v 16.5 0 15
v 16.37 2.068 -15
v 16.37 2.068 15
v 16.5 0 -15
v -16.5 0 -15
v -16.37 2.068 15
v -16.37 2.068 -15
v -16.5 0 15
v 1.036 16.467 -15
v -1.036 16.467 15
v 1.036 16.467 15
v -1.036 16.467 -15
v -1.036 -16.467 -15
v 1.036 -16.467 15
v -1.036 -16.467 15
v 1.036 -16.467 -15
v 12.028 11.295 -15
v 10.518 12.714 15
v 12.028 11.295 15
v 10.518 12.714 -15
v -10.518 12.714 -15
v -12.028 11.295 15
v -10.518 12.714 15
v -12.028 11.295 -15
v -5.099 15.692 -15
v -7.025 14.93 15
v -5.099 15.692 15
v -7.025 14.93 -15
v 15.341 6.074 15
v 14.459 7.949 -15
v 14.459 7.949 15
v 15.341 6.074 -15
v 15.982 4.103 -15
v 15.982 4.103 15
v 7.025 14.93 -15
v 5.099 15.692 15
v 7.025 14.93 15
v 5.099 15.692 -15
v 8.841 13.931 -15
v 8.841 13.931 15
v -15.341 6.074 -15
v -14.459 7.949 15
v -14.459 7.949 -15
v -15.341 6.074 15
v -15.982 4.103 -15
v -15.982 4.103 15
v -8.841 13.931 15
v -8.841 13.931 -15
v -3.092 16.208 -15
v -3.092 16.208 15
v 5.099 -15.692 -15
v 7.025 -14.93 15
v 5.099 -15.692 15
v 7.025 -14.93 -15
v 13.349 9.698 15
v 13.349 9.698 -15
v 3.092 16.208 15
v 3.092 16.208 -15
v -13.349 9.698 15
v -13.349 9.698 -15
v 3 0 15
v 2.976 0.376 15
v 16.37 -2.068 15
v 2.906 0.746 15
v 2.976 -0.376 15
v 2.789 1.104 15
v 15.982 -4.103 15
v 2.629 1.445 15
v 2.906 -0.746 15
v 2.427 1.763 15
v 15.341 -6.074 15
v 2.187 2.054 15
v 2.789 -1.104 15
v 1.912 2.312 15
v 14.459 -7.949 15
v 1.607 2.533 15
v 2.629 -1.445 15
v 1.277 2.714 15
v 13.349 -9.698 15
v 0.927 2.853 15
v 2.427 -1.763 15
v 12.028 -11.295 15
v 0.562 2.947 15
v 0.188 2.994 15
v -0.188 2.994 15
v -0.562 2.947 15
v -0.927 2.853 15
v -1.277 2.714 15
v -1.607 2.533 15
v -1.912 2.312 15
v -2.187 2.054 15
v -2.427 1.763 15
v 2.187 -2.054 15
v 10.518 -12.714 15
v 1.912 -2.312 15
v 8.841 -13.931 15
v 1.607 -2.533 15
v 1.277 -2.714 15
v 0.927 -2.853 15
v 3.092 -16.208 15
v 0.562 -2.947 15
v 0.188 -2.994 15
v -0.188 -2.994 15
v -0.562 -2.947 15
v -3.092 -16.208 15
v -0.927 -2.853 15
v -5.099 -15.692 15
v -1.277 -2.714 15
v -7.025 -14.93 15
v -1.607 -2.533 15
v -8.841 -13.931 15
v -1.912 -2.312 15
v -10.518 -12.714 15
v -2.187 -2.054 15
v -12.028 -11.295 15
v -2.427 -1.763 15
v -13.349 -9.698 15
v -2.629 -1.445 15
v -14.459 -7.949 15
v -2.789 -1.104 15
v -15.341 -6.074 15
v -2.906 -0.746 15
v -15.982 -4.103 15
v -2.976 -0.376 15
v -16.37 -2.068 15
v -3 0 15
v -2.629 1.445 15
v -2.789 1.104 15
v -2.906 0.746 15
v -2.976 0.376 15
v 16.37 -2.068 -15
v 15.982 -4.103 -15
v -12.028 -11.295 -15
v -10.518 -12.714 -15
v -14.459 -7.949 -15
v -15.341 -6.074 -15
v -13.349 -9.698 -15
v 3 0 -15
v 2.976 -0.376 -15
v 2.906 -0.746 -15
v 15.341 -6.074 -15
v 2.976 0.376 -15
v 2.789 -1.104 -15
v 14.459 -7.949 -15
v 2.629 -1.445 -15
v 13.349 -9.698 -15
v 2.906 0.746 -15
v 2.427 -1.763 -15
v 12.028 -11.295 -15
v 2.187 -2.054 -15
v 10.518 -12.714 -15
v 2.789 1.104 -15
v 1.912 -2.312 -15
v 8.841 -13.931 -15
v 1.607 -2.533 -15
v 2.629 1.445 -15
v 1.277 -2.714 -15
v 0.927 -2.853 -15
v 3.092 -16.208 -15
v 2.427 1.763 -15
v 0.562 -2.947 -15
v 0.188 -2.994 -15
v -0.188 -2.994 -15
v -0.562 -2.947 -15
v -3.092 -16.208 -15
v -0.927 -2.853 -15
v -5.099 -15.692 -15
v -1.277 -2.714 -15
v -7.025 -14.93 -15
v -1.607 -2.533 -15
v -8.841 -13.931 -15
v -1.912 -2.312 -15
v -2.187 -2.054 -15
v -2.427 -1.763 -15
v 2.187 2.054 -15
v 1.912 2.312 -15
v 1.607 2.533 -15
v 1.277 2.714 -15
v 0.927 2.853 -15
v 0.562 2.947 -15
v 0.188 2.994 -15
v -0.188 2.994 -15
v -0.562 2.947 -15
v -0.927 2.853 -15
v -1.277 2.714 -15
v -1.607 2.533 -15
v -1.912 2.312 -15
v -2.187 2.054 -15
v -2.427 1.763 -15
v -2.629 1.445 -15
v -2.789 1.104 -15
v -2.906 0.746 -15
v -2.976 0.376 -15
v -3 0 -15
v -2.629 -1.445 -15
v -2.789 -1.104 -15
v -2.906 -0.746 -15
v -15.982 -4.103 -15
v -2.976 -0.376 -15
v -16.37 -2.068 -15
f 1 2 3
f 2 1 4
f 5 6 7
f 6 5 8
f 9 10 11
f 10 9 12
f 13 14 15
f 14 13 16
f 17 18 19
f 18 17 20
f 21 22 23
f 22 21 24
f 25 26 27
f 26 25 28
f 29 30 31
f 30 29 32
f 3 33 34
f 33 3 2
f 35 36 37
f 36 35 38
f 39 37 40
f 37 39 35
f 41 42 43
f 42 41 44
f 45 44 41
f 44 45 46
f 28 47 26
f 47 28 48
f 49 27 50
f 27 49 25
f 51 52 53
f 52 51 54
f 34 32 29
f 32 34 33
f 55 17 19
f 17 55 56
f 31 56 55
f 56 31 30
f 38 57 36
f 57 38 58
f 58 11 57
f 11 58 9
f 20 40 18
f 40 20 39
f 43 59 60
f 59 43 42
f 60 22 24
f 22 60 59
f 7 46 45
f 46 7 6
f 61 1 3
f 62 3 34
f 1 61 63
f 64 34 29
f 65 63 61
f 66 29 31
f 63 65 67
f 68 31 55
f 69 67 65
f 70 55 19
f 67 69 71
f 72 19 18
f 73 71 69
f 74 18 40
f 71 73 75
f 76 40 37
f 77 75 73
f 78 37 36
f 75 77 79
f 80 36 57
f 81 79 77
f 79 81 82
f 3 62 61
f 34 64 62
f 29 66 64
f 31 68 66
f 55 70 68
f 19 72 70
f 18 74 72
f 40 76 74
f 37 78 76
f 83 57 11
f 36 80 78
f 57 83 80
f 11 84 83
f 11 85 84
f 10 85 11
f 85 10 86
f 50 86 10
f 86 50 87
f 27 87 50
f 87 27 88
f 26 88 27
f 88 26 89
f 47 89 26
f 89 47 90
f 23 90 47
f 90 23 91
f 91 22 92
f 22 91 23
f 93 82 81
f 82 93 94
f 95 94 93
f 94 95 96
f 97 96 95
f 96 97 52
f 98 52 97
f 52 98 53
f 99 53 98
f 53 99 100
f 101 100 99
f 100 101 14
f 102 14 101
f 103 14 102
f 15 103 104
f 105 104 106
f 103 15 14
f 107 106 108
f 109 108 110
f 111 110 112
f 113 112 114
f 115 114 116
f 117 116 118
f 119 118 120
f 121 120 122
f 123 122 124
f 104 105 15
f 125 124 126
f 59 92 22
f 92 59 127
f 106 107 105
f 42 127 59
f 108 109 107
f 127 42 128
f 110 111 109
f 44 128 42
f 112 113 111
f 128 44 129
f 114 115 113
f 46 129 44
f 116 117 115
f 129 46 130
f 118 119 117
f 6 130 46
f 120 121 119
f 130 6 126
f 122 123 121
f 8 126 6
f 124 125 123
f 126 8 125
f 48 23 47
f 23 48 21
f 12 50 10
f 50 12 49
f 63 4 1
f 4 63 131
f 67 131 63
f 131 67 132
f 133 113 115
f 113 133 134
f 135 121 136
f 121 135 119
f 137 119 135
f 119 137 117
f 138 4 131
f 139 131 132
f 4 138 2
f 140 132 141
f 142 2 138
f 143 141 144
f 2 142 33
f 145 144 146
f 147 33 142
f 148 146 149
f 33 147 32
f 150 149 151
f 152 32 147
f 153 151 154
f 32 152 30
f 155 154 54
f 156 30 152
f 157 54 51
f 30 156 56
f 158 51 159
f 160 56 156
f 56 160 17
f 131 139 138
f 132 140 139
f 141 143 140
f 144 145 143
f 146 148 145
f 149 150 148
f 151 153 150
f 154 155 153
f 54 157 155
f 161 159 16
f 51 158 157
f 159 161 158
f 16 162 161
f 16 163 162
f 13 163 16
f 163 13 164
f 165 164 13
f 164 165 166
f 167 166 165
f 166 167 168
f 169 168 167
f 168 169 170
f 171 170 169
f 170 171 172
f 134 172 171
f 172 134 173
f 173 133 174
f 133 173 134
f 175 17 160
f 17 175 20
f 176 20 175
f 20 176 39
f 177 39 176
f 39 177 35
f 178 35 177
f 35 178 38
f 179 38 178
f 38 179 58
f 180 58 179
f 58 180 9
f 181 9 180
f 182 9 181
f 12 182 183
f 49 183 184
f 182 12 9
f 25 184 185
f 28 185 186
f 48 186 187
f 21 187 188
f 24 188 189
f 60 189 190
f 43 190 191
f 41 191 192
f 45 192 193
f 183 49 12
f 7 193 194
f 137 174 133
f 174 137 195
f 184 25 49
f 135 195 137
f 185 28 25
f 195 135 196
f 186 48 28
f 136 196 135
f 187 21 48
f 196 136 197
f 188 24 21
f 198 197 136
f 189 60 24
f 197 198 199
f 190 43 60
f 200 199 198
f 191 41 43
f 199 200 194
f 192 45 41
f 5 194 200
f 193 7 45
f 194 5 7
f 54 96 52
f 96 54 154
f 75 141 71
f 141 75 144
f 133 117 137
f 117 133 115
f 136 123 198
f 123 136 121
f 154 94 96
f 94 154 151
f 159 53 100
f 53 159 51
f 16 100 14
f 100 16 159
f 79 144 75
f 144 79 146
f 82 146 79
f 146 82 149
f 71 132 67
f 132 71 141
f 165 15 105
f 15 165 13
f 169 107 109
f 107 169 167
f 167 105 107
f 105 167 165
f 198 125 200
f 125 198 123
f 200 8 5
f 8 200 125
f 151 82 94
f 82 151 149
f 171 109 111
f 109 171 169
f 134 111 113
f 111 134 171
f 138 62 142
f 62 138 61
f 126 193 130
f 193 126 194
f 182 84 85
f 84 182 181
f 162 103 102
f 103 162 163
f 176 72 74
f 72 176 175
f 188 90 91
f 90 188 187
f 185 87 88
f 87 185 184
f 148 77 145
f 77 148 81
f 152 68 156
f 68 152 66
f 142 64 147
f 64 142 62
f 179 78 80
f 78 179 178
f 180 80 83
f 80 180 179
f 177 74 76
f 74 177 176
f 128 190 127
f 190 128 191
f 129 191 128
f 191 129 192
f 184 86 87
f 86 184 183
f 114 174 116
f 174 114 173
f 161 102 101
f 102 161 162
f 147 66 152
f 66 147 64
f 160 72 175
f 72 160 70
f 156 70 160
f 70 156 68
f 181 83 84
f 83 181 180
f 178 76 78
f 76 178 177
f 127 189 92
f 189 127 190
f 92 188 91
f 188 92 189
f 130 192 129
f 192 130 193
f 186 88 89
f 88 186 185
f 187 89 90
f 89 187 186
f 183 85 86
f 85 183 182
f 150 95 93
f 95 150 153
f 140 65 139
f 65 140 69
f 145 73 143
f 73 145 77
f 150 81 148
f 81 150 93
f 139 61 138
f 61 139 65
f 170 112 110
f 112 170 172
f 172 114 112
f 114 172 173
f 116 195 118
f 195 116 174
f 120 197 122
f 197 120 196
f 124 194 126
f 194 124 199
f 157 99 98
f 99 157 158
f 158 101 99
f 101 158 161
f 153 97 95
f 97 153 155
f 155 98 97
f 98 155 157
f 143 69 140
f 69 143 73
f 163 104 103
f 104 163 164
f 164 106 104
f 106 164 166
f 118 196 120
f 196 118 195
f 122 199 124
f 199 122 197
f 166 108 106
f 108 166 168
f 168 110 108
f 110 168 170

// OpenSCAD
$fn = 50;


difference() {
	union() {
		translate(v = [0, 0, -15.0000000000]) {
			cylinder(h = 30, r = 16.5000000000);
		}
	}
	union() {
		translate(v = [0, 0, -100.0000000000]) {
			cylinder(h = 200, r = 3);
		}
	}
}
